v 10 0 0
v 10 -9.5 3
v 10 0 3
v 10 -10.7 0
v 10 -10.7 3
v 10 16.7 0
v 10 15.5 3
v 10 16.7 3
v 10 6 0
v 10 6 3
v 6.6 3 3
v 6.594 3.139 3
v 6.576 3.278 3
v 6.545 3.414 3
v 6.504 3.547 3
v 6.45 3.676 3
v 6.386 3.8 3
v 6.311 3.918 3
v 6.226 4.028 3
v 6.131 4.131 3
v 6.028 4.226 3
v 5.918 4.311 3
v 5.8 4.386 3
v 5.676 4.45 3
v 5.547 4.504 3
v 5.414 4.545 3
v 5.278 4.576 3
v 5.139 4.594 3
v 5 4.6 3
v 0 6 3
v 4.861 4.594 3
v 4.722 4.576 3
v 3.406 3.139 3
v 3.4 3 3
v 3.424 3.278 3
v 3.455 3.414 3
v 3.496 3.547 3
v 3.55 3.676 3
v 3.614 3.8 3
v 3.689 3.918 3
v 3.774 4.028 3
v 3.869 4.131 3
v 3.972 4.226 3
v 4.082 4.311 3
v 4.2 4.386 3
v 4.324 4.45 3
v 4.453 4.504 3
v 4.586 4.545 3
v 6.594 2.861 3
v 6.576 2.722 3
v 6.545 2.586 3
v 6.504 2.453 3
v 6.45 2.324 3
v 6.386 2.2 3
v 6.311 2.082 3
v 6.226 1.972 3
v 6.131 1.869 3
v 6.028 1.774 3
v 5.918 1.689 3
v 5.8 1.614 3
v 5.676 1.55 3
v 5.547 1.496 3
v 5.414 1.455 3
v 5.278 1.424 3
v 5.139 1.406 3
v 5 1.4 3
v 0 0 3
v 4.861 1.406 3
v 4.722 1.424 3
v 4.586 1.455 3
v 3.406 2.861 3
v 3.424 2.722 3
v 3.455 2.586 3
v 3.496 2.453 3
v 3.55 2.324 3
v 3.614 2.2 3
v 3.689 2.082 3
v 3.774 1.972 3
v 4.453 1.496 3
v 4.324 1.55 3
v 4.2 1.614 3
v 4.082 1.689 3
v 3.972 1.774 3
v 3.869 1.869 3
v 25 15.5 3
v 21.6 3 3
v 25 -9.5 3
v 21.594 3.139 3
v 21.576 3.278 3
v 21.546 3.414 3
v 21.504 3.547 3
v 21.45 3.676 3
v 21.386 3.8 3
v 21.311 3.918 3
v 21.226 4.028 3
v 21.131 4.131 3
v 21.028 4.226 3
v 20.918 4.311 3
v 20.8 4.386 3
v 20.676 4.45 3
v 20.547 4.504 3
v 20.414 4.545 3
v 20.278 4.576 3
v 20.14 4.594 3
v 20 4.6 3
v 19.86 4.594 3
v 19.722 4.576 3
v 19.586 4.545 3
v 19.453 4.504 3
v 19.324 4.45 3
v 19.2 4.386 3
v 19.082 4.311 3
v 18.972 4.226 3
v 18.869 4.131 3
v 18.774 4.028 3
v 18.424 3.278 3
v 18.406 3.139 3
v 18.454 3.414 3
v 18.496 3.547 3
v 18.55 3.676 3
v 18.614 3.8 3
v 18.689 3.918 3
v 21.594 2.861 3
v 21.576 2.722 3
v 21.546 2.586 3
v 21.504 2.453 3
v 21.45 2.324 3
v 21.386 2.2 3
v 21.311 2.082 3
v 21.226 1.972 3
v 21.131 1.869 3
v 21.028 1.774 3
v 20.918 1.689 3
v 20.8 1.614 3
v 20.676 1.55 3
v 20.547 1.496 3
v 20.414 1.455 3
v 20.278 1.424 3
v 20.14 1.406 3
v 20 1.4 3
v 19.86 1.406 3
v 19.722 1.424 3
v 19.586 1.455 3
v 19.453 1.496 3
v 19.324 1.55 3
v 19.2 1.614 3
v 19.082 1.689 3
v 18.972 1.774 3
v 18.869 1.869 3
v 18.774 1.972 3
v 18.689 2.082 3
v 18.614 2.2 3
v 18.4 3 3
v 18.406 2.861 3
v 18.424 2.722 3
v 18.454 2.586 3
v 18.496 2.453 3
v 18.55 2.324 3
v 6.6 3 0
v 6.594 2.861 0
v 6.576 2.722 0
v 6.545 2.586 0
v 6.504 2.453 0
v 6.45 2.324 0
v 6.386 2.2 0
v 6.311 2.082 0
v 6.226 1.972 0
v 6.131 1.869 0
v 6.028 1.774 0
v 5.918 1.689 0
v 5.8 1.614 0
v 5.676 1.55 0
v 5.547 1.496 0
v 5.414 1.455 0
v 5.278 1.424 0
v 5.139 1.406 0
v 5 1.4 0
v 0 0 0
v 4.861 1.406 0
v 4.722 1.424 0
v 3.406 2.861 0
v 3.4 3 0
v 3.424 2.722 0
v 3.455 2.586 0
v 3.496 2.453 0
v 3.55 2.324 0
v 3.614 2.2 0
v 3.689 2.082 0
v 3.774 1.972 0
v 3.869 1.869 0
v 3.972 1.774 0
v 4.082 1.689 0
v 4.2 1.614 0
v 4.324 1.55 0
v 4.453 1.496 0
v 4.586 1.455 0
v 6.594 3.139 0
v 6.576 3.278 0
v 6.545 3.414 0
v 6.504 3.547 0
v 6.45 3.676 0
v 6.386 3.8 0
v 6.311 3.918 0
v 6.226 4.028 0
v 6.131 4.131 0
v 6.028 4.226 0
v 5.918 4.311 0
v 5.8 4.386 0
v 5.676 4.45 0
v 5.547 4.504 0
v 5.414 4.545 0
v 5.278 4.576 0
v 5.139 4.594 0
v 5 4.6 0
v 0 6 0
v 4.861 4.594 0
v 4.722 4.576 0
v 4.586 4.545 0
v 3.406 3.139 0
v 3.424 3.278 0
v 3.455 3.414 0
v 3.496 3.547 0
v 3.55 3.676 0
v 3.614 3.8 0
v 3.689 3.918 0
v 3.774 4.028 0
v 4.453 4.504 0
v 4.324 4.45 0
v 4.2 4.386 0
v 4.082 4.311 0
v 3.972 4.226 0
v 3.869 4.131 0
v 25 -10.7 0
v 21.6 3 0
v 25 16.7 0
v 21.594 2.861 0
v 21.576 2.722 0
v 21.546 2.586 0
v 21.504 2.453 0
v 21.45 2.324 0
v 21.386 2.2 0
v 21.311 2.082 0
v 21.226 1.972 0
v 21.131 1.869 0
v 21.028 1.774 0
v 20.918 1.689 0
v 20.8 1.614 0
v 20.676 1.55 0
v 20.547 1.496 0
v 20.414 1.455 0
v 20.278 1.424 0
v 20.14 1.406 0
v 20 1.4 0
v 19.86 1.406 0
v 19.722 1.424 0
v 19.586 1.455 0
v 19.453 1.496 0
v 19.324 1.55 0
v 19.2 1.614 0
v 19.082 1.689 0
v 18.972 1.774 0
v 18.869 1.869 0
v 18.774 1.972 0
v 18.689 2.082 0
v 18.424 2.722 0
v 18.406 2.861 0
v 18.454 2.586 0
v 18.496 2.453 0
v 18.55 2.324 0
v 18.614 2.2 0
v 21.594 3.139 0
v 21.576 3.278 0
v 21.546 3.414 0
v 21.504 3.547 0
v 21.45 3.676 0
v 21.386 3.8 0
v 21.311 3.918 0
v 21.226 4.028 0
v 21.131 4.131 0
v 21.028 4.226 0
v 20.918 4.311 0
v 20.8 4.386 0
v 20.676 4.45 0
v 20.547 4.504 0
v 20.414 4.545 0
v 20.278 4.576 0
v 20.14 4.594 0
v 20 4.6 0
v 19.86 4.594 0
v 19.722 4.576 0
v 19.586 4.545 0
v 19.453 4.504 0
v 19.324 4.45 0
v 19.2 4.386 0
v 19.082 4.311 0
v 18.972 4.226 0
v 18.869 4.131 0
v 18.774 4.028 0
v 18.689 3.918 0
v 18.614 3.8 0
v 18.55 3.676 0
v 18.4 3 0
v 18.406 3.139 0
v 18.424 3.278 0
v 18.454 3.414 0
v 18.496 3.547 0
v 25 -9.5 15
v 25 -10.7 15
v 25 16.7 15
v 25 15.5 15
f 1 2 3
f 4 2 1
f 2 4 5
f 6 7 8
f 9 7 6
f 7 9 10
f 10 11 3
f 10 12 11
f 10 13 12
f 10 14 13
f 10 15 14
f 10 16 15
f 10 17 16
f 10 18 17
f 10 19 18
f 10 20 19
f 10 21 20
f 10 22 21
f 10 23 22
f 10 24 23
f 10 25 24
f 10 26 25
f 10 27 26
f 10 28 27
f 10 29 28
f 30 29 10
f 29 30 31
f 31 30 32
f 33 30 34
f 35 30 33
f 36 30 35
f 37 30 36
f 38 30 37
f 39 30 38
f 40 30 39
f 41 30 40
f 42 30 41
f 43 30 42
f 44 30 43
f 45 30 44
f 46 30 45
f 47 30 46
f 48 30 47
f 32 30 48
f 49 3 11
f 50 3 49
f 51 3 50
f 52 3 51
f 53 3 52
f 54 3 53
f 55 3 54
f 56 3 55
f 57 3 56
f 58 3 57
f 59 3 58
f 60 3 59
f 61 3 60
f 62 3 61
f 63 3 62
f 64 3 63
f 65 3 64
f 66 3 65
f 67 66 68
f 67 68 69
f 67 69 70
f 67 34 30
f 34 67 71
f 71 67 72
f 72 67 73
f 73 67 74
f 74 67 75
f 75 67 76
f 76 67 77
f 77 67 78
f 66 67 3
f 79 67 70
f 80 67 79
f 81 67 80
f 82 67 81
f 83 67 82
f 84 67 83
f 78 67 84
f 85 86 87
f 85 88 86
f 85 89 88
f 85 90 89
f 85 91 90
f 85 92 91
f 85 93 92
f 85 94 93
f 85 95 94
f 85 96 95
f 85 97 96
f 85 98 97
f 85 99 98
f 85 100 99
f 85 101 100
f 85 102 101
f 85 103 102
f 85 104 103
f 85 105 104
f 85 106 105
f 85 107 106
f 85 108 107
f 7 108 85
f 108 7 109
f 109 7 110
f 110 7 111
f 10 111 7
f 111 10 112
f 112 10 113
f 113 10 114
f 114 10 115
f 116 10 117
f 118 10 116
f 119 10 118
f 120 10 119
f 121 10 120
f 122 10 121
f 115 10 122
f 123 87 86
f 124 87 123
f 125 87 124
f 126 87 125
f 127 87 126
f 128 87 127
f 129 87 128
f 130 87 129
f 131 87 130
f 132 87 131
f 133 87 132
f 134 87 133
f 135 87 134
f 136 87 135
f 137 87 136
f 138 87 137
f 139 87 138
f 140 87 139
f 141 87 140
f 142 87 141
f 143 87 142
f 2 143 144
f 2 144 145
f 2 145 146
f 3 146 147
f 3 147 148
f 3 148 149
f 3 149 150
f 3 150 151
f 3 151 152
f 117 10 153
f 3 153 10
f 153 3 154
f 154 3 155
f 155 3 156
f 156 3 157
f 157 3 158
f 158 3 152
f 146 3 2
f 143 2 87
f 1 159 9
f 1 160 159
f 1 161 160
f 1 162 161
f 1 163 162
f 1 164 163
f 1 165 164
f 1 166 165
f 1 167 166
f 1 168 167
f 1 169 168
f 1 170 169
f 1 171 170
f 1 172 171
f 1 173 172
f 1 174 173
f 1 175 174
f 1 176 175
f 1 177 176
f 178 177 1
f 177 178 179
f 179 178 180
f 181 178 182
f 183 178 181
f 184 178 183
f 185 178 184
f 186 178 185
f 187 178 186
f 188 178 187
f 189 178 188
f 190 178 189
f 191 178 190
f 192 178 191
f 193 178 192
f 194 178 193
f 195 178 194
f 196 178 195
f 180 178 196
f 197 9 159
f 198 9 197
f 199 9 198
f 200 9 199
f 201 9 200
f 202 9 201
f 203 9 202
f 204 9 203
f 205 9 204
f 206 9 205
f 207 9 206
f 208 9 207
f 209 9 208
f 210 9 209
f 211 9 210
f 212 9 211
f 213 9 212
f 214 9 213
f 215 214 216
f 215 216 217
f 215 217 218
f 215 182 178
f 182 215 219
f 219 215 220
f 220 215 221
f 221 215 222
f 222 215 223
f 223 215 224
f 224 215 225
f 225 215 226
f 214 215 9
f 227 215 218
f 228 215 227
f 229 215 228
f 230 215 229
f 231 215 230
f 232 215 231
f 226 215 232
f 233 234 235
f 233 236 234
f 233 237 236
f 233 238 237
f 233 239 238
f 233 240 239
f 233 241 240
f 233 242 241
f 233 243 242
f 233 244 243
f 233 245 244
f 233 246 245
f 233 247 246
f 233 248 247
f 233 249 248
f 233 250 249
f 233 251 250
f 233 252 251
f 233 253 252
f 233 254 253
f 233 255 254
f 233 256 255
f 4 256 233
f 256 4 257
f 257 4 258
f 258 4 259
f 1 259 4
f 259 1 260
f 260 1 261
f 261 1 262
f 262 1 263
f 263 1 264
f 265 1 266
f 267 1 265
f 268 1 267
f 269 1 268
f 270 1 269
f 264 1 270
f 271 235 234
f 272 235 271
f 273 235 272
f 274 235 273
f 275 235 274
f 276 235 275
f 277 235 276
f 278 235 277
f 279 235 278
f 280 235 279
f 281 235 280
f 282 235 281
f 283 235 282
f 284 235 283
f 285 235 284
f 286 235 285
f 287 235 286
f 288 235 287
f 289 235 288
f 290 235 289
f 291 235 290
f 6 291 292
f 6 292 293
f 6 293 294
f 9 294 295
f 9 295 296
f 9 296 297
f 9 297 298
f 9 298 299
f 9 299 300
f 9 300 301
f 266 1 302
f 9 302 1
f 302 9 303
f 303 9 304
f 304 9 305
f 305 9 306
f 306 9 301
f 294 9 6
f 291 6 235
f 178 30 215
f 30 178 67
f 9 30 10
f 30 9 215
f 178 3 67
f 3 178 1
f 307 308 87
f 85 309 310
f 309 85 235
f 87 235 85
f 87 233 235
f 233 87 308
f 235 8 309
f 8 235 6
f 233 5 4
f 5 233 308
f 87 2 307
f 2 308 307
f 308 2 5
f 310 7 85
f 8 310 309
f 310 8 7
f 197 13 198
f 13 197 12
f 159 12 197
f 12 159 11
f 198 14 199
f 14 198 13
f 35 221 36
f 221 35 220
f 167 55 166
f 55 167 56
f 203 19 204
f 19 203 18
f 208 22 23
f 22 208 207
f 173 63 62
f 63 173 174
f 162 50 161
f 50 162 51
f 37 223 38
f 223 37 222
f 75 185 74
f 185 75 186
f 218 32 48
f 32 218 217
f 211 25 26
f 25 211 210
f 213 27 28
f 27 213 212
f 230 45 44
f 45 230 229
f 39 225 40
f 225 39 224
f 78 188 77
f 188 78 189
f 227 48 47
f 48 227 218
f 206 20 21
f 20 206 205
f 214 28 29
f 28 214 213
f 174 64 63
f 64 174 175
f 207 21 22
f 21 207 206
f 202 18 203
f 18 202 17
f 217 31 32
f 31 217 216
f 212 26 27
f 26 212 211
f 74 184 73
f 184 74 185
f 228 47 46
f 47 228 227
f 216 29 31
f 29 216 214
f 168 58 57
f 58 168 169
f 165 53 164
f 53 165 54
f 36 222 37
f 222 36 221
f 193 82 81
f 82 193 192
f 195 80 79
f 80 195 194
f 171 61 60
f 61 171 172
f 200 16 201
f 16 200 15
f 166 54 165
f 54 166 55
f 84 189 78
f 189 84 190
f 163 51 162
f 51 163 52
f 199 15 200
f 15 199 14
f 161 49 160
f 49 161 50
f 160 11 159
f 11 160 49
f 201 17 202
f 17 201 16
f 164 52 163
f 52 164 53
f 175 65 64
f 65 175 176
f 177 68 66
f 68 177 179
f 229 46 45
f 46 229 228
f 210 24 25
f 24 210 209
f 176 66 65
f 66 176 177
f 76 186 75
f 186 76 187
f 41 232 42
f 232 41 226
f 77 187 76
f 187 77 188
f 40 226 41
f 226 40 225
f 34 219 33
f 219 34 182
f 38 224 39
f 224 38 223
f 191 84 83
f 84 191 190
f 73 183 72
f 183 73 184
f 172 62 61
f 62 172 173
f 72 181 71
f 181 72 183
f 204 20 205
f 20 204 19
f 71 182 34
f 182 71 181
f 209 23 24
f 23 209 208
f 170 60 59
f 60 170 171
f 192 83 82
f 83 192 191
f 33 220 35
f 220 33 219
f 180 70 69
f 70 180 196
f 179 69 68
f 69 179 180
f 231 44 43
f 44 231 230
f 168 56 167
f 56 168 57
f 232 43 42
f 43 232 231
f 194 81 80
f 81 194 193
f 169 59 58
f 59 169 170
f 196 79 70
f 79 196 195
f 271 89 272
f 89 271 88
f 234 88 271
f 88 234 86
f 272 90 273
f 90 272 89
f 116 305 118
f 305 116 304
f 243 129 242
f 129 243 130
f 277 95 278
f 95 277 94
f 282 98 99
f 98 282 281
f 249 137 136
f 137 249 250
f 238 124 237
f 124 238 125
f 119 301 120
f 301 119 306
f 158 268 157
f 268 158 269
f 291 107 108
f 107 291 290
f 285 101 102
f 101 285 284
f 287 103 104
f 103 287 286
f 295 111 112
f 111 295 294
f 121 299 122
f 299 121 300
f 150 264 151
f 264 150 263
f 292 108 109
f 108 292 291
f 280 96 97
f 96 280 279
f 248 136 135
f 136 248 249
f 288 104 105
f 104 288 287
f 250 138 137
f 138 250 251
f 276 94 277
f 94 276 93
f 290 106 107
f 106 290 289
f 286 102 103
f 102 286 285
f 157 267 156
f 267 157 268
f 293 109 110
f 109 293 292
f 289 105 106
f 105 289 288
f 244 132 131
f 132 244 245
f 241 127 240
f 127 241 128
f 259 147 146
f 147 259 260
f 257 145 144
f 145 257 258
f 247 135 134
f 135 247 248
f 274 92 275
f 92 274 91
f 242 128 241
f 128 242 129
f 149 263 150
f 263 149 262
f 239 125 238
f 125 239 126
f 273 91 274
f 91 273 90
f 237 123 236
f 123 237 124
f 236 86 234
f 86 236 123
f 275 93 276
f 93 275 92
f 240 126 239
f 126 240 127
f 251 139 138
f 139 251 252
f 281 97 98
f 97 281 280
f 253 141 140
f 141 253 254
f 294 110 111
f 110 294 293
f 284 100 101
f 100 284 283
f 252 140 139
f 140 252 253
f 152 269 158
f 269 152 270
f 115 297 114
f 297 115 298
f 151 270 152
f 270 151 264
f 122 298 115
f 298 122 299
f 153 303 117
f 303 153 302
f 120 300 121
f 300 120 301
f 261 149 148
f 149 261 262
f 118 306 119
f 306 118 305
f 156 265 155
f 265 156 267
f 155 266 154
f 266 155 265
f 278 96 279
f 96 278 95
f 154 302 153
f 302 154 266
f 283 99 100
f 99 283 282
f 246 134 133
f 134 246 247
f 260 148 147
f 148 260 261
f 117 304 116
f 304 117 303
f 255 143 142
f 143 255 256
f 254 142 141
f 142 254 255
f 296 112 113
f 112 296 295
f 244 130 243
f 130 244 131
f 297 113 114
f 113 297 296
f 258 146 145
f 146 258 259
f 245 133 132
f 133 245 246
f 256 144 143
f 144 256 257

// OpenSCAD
$fn = 72;

// ---- Parameters ----
L = 25;
NARROW_L = 10;
NARROW_W = 6;

BASE_H = 3;

WIDE_INTERNAL_W = 25;
WALL_T = 1.2;
TOTAL_H_END = 15;   // total height including 3 mm base

HOLE_D = 3.2;
HOLE_X = 5;
HOLE_Y = NARROW_W/2;

// Optional screw fixing through the floor of the wide section
SCREW_HOLE_D = 3.2;   // clearance for an M3-sized screw; adjust for chosen wood screw
SCREW_HOLE_X = 20;    // centered along the 10..25 mm wide section
// Center wide section around the same centerline as narrow section
CY = NARROW_W/2;
SCREW_HOLE_Y = CY;    // aligned with the central axis

wide_inner_y0 = CY - WIDE_INTERNAL_W/2;
wide_inner_y1 = CY + WIDE_INTERNAL_W/2;

// overall wide base including side walls
wide_outer_y0 = wide_inner_y0 - WALL_T;
wide_outer_y1 = wide_inner_y1 + WALL_T;

// ---- Base ----
module base_shape() {
    union() {
        // Narrow section 0..10 mm, 6 mm width
        cube([NARROW_L, NARROW_W, BASE_H], center=false);

        // Wide section 10..25 mm, 25 mm internal width + wall thickness zones
        translate([NARROW_L, wide_outer_y0, 0])
            cube([L-NARROW_L, wide_outer_y1-wide_outer_y0, BASE_H], center=false);
    }
}

// ---- Triangular walls ----
module left_wall() {
    // inner face at y = wide_inner_y0, outer face at y = wide_outer_y0
    polyhedron(
        points=[
            [NARROW_L, wide_inner_y0, BASE_H],          // 0 inner bottom start
            [NARROW_L, wide_outer_y0, BASE_H],          // 1 outer bottom start
            [NARROW_L, wide_inner_y0, BASE_H],          // 2 inner top start (zero height)
            [NARROW_L, wide_outer_y0, BASE_H],          // 3 outer top start

            [L, wide_inner_y0, BASE_H],                 // 4 inner bottom end
            [L, wide_outer_y0, BASE_H],                 // 5 outer bottom end
            [L, wide_inner_y0, TOTAL_H_END],            // 6 inner top end
            [L, wide_outer_y0, TOTAL_H_END]             // 7 outer top end
        ],
        faces=[
            [0,4,6,2],   // inner
            [1,3,7,5],   // outer
            [0,1,5,4],   // bottom
            [2,6,7,3],   // top slope
            [0,2,3,1],   // start
            [4,5,7,6]    // end
        ],
        convexity=10
    );
}

module right_wall() {
    polyhedron(
        points=[
            [NARROW_L, wide_inner_y1, BASE_H],
            [NARROW_L, wide_outer_y1, BASE_H],
            [NARROW_L, wide_inner_y1, BASE_H],
            [NARROW_L, wide_outer_y1, BASE_H],

            [L, wide_inner_y1, BASE_H],
            [L, wide_outer_y1, BASE_H],
            [L, wide_inner_y1, TOTAL_H_END],
            [L, wide_outer_y1, TOTAL_H_END]
        ],
        faces=[
            [0,2,6,4],
            [1,5,7,3],
            [0,4,5,1],
            [2,3,7,6],
            [0,1,3,2],
            [4,6,7,5]
        ],
        convexity=10
    );
}

difference() {
    union() {
        base_shape();
        left_wall();
        right_wall();
    }

    // Guide hole in narrow section
    translate([HOLE_X, HOLE_Y, -1])
        cylinder(h=TOTAL_H_END+2, d=HOLE_D);

    // Screw hole through the 3 mm bottom plate, between the two side walls
    translate([SCREW_HOLE_X, SCREW_HOLE_Y, -1])
        cylinder(h=BASE_H+2, d=SCREW_HOLE_D);
}
